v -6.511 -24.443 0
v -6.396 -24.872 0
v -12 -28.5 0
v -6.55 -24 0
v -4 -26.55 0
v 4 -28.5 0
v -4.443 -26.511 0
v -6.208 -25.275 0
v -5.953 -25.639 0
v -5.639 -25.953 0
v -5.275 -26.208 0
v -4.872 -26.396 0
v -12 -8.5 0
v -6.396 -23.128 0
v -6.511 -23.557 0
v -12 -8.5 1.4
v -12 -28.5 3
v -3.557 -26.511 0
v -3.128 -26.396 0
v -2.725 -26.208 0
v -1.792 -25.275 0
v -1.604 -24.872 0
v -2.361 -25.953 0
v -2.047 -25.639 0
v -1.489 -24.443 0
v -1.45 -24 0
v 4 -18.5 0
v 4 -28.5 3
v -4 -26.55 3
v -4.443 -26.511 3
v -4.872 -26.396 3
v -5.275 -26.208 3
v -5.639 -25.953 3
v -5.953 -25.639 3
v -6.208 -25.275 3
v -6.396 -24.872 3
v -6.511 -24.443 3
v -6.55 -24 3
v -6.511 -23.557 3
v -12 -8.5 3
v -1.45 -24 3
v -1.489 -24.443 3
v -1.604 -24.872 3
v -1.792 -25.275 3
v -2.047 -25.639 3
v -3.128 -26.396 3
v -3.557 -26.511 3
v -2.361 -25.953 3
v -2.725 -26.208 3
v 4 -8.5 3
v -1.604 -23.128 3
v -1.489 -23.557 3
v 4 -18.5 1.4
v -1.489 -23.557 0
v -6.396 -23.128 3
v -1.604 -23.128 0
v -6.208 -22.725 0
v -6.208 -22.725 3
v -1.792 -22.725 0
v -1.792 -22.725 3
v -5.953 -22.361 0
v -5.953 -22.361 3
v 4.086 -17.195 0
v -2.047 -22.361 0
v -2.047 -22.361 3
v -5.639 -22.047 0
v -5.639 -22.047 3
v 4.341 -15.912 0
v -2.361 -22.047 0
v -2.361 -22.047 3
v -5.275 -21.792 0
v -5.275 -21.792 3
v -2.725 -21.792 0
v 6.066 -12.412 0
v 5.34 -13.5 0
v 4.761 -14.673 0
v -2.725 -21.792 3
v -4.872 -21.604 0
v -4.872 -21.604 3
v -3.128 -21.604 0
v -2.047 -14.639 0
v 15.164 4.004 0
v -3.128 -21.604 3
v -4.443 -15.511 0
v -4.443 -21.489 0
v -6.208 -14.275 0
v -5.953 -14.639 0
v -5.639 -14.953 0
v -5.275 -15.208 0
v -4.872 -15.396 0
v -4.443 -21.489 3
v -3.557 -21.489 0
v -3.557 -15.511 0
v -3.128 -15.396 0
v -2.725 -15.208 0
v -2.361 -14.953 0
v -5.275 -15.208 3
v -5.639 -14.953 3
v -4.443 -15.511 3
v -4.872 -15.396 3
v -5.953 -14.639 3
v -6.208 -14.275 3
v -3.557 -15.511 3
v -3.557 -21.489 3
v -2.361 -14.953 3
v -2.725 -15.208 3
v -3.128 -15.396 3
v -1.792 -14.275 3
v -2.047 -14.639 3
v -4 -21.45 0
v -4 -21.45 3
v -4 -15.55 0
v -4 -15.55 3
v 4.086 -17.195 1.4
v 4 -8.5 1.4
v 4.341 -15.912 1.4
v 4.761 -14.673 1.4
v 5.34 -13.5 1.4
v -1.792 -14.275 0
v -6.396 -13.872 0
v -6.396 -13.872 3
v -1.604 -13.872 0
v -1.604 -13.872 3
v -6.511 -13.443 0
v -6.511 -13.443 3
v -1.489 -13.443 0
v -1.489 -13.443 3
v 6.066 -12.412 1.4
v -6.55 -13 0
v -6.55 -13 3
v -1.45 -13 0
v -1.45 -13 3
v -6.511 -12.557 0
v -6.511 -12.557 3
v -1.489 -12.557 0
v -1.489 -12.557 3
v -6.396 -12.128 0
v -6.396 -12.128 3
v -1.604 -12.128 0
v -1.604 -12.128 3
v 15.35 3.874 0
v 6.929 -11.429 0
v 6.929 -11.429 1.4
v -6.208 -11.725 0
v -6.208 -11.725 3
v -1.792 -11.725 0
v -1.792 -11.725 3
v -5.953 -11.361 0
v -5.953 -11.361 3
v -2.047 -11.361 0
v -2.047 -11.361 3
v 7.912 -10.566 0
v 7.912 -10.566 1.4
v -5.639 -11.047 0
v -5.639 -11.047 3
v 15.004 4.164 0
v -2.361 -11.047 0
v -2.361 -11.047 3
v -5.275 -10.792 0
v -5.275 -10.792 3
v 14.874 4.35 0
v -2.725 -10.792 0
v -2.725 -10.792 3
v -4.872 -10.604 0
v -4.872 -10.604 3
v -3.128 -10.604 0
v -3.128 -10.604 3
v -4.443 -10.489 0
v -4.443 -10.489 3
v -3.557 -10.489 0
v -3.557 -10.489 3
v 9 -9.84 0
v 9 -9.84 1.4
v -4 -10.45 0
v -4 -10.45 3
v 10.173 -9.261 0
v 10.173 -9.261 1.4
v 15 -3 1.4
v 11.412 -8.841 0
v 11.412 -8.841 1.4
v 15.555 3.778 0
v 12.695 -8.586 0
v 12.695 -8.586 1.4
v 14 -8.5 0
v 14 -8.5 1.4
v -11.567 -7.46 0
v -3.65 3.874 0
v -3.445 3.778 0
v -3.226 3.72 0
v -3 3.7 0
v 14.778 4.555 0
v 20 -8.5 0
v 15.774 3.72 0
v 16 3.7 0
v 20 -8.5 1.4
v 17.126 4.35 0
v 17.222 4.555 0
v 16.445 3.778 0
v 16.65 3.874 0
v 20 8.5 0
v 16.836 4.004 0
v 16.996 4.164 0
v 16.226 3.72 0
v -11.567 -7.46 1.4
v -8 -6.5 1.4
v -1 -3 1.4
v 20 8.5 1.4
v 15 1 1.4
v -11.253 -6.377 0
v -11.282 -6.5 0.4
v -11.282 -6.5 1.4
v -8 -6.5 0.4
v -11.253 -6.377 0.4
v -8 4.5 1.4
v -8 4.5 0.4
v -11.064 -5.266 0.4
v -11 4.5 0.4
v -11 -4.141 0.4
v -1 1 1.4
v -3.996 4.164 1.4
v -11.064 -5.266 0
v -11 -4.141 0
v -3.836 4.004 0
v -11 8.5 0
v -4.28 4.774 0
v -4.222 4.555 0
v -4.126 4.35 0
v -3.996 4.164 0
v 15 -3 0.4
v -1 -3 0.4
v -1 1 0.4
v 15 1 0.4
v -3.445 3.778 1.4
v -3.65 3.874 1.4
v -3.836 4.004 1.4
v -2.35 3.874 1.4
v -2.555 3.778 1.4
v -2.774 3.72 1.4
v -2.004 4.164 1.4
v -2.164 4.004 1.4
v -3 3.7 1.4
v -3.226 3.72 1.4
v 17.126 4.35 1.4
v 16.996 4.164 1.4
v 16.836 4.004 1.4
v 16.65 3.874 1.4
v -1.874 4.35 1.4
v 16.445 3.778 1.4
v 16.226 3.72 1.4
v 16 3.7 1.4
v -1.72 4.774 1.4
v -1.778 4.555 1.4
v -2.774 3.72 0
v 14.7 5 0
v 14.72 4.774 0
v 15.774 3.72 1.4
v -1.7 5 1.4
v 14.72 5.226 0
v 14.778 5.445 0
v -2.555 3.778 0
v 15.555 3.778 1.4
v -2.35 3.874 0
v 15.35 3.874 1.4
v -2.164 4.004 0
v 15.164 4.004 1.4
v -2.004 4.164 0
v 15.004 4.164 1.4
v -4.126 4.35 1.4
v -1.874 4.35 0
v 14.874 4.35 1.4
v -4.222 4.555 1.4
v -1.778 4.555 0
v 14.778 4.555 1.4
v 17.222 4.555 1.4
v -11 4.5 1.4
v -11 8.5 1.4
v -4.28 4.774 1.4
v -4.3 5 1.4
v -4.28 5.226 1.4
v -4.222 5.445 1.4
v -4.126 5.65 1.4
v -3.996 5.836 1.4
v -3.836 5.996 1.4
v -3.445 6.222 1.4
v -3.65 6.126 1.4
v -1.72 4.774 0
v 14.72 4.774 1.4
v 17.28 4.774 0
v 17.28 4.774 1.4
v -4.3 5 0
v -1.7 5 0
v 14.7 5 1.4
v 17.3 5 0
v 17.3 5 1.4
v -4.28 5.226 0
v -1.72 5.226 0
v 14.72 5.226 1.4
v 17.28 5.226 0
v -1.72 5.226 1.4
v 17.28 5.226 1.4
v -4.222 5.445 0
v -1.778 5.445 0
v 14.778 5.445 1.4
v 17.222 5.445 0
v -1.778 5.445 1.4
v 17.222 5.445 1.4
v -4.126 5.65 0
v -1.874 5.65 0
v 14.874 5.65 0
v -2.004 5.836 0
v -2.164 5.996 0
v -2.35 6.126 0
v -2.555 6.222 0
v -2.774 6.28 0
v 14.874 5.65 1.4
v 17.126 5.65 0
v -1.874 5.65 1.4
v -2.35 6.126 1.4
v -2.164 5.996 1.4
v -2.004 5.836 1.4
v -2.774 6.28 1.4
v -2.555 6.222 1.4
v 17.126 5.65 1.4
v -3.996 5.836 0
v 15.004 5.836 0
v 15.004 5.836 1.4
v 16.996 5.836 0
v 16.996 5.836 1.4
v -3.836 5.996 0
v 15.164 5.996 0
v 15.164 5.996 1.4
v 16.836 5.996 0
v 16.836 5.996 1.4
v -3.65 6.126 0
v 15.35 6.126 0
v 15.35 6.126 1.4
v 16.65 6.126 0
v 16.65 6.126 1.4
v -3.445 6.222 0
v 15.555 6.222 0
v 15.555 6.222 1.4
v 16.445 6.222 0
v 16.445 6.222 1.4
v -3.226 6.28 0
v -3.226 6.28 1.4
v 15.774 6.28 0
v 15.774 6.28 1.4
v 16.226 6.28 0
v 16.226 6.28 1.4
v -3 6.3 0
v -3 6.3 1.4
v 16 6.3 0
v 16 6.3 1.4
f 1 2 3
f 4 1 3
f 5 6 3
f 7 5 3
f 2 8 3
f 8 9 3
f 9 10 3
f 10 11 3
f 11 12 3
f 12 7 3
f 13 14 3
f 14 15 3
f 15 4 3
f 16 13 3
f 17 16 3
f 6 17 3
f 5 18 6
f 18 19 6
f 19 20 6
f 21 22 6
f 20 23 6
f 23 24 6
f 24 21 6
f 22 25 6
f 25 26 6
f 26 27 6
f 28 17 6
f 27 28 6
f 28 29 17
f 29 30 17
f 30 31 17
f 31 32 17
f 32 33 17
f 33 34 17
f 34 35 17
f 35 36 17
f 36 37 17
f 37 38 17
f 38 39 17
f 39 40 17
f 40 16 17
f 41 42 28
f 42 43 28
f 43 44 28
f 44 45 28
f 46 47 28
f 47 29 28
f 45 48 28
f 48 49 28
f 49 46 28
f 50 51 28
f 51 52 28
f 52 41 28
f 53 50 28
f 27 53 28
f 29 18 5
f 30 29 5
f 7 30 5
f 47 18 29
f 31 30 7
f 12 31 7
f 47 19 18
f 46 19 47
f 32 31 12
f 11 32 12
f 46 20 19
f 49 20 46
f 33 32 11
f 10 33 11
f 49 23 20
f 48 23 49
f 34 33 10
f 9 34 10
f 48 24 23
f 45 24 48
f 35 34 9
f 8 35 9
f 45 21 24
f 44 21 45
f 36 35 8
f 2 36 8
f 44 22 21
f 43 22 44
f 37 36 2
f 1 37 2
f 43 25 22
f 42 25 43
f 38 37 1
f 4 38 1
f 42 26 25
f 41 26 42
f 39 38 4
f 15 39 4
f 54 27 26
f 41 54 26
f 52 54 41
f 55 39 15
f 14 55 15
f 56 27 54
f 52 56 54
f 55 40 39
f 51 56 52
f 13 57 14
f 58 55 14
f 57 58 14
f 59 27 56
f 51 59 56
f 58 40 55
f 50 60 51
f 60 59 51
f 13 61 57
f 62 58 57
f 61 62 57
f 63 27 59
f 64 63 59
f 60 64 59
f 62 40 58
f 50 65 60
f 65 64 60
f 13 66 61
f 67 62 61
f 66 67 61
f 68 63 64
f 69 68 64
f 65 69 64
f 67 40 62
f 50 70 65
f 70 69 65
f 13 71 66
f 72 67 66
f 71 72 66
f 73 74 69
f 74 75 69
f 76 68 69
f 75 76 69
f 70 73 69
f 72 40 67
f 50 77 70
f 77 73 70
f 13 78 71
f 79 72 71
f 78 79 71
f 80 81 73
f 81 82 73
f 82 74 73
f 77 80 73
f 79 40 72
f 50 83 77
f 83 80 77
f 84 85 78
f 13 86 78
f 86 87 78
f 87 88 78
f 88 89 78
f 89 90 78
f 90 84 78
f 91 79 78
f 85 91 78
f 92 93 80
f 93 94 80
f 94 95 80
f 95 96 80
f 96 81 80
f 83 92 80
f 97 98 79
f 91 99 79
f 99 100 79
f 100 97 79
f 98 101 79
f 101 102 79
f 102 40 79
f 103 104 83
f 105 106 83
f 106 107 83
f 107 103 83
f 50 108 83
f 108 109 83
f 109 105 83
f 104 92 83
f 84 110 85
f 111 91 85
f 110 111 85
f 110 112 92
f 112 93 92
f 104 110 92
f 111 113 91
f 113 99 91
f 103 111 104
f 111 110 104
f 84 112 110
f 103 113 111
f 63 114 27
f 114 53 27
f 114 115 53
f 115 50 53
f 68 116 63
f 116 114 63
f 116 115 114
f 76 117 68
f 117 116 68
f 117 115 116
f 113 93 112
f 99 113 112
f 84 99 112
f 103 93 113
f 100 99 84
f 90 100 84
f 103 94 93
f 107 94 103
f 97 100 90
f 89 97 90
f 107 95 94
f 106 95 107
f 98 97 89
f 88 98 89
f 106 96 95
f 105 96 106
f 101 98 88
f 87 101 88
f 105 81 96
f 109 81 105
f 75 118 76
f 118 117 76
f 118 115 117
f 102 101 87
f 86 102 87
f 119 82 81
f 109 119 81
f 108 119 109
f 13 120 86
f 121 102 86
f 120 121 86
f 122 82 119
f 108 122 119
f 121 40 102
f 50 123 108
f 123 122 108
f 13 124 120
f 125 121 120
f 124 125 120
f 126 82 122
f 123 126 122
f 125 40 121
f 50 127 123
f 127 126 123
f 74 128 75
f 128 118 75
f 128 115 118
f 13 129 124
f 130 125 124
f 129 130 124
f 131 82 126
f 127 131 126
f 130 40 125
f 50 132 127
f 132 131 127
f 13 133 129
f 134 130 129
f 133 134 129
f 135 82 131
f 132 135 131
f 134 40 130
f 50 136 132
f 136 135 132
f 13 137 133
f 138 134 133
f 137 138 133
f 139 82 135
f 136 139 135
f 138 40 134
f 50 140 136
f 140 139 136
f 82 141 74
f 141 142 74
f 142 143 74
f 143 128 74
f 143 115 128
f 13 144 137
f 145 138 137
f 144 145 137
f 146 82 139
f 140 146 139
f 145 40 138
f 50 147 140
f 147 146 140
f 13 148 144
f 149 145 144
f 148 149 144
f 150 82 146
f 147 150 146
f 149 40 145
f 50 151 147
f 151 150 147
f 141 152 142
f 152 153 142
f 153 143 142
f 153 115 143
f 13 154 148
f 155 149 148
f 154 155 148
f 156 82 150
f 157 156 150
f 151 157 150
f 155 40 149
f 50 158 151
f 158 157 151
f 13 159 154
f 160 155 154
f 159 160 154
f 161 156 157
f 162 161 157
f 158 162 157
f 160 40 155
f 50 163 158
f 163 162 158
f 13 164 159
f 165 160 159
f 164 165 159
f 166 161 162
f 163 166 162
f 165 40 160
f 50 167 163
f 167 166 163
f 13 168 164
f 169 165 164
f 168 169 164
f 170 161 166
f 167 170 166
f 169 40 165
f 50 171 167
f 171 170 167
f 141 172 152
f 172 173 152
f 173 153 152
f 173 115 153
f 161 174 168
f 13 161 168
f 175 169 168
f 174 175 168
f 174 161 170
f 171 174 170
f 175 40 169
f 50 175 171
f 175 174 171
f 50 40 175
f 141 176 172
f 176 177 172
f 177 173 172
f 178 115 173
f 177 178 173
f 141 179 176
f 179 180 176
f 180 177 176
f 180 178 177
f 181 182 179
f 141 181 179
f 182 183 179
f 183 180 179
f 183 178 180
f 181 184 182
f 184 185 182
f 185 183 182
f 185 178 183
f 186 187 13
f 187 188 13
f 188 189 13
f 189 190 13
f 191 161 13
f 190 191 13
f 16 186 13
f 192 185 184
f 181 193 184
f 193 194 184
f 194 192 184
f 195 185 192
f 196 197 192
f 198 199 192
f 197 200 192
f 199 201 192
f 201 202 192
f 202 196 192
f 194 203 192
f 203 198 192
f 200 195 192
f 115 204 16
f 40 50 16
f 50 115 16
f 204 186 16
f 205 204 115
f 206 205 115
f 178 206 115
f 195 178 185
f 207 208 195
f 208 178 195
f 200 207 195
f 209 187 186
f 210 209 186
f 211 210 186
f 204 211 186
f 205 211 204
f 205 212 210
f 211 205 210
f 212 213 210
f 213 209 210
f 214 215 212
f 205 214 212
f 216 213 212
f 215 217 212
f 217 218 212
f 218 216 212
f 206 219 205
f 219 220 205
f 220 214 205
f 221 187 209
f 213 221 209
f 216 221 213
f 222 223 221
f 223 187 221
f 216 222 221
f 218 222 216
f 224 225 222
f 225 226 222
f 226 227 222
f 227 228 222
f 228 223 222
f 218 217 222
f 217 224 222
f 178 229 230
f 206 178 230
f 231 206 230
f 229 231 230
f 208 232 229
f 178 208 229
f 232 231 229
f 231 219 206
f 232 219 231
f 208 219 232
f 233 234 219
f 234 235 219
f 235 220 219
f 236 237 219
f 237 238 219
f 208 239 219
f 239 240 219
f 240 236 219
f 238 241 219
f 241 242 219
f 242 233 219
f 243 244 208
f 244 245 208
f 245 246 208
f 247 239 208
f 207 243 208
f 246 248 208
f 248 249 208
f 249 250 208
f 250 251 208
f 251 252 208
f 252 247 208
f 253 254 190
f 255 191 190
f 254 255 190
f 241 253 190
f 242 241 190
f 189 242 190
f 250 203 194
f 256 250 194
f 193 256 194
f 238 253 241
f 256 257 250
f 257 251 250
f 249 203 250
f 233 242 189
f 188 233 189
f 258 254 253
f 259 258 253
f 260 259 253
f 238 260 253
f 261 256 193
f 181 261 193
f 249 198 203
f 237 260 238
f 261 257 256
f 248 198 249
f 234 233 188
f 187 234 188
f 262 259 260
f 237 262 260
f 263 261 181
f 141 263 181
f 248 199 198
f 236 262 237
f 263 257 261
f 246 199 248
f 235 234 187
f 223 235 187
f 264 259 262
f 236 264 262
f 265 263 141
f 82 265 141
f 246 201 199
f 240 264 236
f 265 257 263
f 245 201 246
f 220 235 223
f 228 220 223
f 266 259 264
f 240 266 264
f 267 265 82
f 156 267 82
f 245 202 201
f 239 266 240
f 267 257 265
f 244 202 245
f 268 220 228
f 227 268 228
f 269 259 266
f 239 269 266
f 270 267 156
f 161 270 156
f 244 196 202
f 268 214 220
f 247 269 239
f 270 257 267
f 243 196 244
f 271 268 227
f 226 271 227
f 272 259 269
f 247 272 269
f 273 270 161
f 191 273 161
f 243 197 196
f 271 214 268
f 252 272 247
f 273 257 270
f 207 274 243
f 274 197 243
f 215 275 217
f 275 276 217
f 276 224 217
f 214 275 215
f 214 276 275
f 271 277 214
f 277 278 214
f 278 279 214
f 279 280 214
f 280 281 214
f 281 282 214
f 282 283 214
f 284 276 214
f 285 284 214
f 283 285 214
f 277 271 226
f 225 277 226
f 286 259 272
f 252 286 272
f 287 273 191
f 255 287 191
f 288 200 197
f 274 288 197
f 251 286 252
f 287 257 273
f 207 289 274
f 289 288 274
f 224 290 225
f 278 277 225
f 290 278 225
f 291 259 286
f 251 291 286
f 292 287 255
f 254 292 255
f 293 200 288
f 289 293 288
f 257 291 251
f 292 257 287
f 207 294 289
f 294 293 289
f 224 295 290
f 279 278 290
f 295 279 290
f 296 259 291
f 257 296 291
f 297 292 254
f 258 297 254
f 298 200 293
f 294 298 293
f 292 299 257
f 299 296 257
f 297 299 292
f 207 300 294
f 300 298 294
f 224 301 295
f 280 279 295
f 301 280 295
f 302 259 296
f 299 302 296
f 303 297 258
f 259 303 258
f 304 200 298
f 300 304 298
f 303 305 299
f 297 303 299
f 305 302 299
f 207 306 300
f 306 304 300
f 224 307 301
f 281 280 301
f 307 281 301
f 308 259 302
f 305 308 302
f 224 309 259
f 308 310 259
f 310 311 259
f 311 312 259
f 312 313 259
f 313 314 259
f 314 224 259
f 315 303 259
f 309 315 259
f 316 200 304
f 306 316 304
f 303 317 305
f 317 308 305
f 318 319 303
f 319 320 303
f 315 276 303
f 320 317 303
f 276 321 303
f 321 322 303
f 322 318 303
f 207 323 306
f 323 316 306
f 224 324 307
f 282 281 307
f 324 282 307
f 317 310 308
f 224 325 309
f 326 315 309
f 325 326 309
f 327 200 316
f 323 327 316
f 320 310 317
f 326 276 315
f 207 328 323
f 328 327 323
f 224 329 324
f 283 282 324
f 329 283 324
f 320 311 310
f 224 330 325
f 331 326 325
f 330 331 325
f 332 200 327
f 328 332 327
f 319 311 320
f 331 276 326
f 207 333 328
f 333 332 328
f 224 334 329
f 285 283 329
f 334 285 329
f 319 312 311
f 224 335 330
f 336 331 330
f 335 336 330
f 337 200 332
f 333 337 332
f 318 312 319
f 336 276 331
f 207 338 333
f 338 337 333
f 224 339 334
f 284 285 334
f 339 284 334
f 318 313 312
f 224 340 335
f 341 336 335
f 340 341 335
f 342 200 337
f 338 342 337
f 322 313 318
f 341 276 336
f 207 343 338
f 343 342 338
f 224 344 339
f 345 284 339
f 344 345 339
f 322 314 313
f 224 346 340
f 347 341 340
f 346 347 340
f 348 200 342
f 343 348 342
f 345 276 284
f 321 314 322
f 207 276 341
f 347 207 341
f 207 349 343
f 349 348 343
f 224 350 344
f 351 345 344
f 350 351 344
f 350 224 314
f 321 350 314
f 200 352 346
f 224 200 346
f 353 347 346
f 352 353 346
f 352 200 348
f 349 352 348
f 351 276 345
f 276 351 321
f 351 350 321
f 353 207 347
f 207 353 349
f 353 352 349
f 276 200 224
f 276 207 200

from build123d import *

# Parameters (mm, degrees)
SKETCH1_W           = 40
SKETCH1_H           = 17
BOSS_EXTRUDE1_DEPTH = 1.4
CUT_EXTRUDE1_START  = 1.4
SKETCH3_W           = 16
SKETCH3_H           = 4
SKETCH3_W_2         = 3
SKETCH3_H_2         = 11
CUT_EXTRUDE1_DEPTH  = 1
SKETCH4_R           = 1.3
CUT_EXTRUDE2_DEPTH  = 11
SKETCH7_W           = 9
SKETCH7_H           = 17
CUT_EXTRUDE5_DEPTH  = 21
SKETCH9_R           = 2.55
BOSS_EXTRUDE3_DEPTH = 3
FILLET2_R           = 10


with BuildPart() as part:
    # Sketch1 → Boss-Extrude1 (new body)
    with BuildSketch(Plane.XY):
        Rectangle(SKETCH1_W, SKETCH1_H)
    extrude(amount=BOSS_EXTRUDE1_DEPTH)

    # Sketch3 → Cut-Extrude1 (cut)
    with BuildSketch(Plane.XY.offset(CUT_EXTRUDE1_START)):
        with Locations((7, -1)):
            Rectangle(SKETCH3_W, SKETCH3_H)
        with Locations((-9.5, -1)):
            Rectangle(SKETCH3_W_2, SKETCH3_H_2)
    extrude(amount=-CUT_EXTRUDE1_DEPTH, mode=Mode.SUBTRACT)

    # Sketch4 → Cut-Extrude2 (cut)
    with BuildSketch(Plane.XY):
        with Locations(Location((16, 5, 0), (0, 0, 180))):
            Circle(SKETCH4_R)
        with Locations(Location((-3, 5, 0), (0, 0, 180))):
            Circle(SKETCH4_R)
    extrude(amount=CUT_EXTRUDE2_DEPTH, mode=Mode.SUBTRACT)

    # Sketch7 → Cut-Extrude5 (cut)
    with BuildSketch(Plane.XY):
        with Locations((-15.5, 0)):
            Rectangle(SKETCH7_W, SKETCH7_H)
    extrude(amount=CUT_EXTRUDE5_DEPTH, mode=Mode.SUBTRACT)

    # Sketch9 → Boss-Extrude3 (add)
    with BuildSketch(Plane.XY):
        Polygon((-12, -8.5), (-12, -28.5), (4, -28.5), (4, -8.5), (-4, -8.5), align=None)
        with Locations((-4, -13)):
            Circle(SKETCH9_R, mode=Mode.SUBTRACT)
        with Locations((-4, -24)):
            Circle(SKETCH9_R, mode=Mode.SUBTRACT)
    extrude(amount=BOSS_EXTRUDE3_DEPTH)

    # Fillet2
    # the kernel refuses this fillet: 10 mm, written as the material it adds along each edge
    with BuildSketch(Plane(origin=(-11, -8.5, 0), x_dir=(0, 1, 0), z_dir=(0, 0, 1))) as fillet2_piece_1_section:
        with BuildLine():
            CenterArc((4.358898944, 10), FILLET2_R, 244.158067237, 25.841932763)
            Line((0, 1), (0, 0))
            Line((0, 0), (4.358898944, 0))
        make_face()
    fillet2_piece_1 = extrude(amount=12.297247359, mode=Mode.PRIVATE)
    fillet2_piece_1 = split(fillet2_piece_1, bisect_by=Plane(origin=(-11, -8.5, 0.4), z_dir=(0, 0, -1)), keep=Keep.TOP, mode=Mode.PRIVATE)
    add(fillet2_piece_1)
    with BuildSketch(Plane(origin=(-11, -8.5, -10.897247359), x_dir=(0, 1, 0), z_dir=(0, 0, 1))) as fillet2_piece_2_section:
        with BuildLine():
            CenterArc((4.358898944, 10), FILLET2_R, 244.158067237, 25.841932763)
            Line((0, 1), (0, 0))
            Line((0, 0), (4.358898944, 0))
        make_face()
    fillet2_piece_2 = extrude(amount=12.297247359, mode=Mode.PRIVATE)
    fillet2_piece_2 = split(fillet2_piece_2, bisect_by=Plane(origin=(-11, -6.5, -10.897247359), z_dir=(0, -1, 0)), keep=Keep.TOP, mode=Mode.PRIVATE)
    fillet2_piece_2 = split(fillet2_piece_2, bisect_by=Plane(origin=(-11, -8.5, 0.4), z_dir=(0, 0, 1)), keep=Keep.TOP, mode=Mode.PRIVATE)
    add(fillet2_piece_2)
    with BuildSketch(Plane(origin=(4, -8.5, 0), x_dir=(1, 0, 0), z_dir=(0, 0, 1))) as fillet2_piece_3:
        with BuildLine():
            CenterArc((FILLET2_R, -FILLET2_R), FILLET2_R, 90, 90)
            Line((0, -FILLET2_R), (0, 0))
            Line((0, 0), (FILLET2_R, 0))
        make_face()
    extrude(amount=1.4)


solid = part.part
